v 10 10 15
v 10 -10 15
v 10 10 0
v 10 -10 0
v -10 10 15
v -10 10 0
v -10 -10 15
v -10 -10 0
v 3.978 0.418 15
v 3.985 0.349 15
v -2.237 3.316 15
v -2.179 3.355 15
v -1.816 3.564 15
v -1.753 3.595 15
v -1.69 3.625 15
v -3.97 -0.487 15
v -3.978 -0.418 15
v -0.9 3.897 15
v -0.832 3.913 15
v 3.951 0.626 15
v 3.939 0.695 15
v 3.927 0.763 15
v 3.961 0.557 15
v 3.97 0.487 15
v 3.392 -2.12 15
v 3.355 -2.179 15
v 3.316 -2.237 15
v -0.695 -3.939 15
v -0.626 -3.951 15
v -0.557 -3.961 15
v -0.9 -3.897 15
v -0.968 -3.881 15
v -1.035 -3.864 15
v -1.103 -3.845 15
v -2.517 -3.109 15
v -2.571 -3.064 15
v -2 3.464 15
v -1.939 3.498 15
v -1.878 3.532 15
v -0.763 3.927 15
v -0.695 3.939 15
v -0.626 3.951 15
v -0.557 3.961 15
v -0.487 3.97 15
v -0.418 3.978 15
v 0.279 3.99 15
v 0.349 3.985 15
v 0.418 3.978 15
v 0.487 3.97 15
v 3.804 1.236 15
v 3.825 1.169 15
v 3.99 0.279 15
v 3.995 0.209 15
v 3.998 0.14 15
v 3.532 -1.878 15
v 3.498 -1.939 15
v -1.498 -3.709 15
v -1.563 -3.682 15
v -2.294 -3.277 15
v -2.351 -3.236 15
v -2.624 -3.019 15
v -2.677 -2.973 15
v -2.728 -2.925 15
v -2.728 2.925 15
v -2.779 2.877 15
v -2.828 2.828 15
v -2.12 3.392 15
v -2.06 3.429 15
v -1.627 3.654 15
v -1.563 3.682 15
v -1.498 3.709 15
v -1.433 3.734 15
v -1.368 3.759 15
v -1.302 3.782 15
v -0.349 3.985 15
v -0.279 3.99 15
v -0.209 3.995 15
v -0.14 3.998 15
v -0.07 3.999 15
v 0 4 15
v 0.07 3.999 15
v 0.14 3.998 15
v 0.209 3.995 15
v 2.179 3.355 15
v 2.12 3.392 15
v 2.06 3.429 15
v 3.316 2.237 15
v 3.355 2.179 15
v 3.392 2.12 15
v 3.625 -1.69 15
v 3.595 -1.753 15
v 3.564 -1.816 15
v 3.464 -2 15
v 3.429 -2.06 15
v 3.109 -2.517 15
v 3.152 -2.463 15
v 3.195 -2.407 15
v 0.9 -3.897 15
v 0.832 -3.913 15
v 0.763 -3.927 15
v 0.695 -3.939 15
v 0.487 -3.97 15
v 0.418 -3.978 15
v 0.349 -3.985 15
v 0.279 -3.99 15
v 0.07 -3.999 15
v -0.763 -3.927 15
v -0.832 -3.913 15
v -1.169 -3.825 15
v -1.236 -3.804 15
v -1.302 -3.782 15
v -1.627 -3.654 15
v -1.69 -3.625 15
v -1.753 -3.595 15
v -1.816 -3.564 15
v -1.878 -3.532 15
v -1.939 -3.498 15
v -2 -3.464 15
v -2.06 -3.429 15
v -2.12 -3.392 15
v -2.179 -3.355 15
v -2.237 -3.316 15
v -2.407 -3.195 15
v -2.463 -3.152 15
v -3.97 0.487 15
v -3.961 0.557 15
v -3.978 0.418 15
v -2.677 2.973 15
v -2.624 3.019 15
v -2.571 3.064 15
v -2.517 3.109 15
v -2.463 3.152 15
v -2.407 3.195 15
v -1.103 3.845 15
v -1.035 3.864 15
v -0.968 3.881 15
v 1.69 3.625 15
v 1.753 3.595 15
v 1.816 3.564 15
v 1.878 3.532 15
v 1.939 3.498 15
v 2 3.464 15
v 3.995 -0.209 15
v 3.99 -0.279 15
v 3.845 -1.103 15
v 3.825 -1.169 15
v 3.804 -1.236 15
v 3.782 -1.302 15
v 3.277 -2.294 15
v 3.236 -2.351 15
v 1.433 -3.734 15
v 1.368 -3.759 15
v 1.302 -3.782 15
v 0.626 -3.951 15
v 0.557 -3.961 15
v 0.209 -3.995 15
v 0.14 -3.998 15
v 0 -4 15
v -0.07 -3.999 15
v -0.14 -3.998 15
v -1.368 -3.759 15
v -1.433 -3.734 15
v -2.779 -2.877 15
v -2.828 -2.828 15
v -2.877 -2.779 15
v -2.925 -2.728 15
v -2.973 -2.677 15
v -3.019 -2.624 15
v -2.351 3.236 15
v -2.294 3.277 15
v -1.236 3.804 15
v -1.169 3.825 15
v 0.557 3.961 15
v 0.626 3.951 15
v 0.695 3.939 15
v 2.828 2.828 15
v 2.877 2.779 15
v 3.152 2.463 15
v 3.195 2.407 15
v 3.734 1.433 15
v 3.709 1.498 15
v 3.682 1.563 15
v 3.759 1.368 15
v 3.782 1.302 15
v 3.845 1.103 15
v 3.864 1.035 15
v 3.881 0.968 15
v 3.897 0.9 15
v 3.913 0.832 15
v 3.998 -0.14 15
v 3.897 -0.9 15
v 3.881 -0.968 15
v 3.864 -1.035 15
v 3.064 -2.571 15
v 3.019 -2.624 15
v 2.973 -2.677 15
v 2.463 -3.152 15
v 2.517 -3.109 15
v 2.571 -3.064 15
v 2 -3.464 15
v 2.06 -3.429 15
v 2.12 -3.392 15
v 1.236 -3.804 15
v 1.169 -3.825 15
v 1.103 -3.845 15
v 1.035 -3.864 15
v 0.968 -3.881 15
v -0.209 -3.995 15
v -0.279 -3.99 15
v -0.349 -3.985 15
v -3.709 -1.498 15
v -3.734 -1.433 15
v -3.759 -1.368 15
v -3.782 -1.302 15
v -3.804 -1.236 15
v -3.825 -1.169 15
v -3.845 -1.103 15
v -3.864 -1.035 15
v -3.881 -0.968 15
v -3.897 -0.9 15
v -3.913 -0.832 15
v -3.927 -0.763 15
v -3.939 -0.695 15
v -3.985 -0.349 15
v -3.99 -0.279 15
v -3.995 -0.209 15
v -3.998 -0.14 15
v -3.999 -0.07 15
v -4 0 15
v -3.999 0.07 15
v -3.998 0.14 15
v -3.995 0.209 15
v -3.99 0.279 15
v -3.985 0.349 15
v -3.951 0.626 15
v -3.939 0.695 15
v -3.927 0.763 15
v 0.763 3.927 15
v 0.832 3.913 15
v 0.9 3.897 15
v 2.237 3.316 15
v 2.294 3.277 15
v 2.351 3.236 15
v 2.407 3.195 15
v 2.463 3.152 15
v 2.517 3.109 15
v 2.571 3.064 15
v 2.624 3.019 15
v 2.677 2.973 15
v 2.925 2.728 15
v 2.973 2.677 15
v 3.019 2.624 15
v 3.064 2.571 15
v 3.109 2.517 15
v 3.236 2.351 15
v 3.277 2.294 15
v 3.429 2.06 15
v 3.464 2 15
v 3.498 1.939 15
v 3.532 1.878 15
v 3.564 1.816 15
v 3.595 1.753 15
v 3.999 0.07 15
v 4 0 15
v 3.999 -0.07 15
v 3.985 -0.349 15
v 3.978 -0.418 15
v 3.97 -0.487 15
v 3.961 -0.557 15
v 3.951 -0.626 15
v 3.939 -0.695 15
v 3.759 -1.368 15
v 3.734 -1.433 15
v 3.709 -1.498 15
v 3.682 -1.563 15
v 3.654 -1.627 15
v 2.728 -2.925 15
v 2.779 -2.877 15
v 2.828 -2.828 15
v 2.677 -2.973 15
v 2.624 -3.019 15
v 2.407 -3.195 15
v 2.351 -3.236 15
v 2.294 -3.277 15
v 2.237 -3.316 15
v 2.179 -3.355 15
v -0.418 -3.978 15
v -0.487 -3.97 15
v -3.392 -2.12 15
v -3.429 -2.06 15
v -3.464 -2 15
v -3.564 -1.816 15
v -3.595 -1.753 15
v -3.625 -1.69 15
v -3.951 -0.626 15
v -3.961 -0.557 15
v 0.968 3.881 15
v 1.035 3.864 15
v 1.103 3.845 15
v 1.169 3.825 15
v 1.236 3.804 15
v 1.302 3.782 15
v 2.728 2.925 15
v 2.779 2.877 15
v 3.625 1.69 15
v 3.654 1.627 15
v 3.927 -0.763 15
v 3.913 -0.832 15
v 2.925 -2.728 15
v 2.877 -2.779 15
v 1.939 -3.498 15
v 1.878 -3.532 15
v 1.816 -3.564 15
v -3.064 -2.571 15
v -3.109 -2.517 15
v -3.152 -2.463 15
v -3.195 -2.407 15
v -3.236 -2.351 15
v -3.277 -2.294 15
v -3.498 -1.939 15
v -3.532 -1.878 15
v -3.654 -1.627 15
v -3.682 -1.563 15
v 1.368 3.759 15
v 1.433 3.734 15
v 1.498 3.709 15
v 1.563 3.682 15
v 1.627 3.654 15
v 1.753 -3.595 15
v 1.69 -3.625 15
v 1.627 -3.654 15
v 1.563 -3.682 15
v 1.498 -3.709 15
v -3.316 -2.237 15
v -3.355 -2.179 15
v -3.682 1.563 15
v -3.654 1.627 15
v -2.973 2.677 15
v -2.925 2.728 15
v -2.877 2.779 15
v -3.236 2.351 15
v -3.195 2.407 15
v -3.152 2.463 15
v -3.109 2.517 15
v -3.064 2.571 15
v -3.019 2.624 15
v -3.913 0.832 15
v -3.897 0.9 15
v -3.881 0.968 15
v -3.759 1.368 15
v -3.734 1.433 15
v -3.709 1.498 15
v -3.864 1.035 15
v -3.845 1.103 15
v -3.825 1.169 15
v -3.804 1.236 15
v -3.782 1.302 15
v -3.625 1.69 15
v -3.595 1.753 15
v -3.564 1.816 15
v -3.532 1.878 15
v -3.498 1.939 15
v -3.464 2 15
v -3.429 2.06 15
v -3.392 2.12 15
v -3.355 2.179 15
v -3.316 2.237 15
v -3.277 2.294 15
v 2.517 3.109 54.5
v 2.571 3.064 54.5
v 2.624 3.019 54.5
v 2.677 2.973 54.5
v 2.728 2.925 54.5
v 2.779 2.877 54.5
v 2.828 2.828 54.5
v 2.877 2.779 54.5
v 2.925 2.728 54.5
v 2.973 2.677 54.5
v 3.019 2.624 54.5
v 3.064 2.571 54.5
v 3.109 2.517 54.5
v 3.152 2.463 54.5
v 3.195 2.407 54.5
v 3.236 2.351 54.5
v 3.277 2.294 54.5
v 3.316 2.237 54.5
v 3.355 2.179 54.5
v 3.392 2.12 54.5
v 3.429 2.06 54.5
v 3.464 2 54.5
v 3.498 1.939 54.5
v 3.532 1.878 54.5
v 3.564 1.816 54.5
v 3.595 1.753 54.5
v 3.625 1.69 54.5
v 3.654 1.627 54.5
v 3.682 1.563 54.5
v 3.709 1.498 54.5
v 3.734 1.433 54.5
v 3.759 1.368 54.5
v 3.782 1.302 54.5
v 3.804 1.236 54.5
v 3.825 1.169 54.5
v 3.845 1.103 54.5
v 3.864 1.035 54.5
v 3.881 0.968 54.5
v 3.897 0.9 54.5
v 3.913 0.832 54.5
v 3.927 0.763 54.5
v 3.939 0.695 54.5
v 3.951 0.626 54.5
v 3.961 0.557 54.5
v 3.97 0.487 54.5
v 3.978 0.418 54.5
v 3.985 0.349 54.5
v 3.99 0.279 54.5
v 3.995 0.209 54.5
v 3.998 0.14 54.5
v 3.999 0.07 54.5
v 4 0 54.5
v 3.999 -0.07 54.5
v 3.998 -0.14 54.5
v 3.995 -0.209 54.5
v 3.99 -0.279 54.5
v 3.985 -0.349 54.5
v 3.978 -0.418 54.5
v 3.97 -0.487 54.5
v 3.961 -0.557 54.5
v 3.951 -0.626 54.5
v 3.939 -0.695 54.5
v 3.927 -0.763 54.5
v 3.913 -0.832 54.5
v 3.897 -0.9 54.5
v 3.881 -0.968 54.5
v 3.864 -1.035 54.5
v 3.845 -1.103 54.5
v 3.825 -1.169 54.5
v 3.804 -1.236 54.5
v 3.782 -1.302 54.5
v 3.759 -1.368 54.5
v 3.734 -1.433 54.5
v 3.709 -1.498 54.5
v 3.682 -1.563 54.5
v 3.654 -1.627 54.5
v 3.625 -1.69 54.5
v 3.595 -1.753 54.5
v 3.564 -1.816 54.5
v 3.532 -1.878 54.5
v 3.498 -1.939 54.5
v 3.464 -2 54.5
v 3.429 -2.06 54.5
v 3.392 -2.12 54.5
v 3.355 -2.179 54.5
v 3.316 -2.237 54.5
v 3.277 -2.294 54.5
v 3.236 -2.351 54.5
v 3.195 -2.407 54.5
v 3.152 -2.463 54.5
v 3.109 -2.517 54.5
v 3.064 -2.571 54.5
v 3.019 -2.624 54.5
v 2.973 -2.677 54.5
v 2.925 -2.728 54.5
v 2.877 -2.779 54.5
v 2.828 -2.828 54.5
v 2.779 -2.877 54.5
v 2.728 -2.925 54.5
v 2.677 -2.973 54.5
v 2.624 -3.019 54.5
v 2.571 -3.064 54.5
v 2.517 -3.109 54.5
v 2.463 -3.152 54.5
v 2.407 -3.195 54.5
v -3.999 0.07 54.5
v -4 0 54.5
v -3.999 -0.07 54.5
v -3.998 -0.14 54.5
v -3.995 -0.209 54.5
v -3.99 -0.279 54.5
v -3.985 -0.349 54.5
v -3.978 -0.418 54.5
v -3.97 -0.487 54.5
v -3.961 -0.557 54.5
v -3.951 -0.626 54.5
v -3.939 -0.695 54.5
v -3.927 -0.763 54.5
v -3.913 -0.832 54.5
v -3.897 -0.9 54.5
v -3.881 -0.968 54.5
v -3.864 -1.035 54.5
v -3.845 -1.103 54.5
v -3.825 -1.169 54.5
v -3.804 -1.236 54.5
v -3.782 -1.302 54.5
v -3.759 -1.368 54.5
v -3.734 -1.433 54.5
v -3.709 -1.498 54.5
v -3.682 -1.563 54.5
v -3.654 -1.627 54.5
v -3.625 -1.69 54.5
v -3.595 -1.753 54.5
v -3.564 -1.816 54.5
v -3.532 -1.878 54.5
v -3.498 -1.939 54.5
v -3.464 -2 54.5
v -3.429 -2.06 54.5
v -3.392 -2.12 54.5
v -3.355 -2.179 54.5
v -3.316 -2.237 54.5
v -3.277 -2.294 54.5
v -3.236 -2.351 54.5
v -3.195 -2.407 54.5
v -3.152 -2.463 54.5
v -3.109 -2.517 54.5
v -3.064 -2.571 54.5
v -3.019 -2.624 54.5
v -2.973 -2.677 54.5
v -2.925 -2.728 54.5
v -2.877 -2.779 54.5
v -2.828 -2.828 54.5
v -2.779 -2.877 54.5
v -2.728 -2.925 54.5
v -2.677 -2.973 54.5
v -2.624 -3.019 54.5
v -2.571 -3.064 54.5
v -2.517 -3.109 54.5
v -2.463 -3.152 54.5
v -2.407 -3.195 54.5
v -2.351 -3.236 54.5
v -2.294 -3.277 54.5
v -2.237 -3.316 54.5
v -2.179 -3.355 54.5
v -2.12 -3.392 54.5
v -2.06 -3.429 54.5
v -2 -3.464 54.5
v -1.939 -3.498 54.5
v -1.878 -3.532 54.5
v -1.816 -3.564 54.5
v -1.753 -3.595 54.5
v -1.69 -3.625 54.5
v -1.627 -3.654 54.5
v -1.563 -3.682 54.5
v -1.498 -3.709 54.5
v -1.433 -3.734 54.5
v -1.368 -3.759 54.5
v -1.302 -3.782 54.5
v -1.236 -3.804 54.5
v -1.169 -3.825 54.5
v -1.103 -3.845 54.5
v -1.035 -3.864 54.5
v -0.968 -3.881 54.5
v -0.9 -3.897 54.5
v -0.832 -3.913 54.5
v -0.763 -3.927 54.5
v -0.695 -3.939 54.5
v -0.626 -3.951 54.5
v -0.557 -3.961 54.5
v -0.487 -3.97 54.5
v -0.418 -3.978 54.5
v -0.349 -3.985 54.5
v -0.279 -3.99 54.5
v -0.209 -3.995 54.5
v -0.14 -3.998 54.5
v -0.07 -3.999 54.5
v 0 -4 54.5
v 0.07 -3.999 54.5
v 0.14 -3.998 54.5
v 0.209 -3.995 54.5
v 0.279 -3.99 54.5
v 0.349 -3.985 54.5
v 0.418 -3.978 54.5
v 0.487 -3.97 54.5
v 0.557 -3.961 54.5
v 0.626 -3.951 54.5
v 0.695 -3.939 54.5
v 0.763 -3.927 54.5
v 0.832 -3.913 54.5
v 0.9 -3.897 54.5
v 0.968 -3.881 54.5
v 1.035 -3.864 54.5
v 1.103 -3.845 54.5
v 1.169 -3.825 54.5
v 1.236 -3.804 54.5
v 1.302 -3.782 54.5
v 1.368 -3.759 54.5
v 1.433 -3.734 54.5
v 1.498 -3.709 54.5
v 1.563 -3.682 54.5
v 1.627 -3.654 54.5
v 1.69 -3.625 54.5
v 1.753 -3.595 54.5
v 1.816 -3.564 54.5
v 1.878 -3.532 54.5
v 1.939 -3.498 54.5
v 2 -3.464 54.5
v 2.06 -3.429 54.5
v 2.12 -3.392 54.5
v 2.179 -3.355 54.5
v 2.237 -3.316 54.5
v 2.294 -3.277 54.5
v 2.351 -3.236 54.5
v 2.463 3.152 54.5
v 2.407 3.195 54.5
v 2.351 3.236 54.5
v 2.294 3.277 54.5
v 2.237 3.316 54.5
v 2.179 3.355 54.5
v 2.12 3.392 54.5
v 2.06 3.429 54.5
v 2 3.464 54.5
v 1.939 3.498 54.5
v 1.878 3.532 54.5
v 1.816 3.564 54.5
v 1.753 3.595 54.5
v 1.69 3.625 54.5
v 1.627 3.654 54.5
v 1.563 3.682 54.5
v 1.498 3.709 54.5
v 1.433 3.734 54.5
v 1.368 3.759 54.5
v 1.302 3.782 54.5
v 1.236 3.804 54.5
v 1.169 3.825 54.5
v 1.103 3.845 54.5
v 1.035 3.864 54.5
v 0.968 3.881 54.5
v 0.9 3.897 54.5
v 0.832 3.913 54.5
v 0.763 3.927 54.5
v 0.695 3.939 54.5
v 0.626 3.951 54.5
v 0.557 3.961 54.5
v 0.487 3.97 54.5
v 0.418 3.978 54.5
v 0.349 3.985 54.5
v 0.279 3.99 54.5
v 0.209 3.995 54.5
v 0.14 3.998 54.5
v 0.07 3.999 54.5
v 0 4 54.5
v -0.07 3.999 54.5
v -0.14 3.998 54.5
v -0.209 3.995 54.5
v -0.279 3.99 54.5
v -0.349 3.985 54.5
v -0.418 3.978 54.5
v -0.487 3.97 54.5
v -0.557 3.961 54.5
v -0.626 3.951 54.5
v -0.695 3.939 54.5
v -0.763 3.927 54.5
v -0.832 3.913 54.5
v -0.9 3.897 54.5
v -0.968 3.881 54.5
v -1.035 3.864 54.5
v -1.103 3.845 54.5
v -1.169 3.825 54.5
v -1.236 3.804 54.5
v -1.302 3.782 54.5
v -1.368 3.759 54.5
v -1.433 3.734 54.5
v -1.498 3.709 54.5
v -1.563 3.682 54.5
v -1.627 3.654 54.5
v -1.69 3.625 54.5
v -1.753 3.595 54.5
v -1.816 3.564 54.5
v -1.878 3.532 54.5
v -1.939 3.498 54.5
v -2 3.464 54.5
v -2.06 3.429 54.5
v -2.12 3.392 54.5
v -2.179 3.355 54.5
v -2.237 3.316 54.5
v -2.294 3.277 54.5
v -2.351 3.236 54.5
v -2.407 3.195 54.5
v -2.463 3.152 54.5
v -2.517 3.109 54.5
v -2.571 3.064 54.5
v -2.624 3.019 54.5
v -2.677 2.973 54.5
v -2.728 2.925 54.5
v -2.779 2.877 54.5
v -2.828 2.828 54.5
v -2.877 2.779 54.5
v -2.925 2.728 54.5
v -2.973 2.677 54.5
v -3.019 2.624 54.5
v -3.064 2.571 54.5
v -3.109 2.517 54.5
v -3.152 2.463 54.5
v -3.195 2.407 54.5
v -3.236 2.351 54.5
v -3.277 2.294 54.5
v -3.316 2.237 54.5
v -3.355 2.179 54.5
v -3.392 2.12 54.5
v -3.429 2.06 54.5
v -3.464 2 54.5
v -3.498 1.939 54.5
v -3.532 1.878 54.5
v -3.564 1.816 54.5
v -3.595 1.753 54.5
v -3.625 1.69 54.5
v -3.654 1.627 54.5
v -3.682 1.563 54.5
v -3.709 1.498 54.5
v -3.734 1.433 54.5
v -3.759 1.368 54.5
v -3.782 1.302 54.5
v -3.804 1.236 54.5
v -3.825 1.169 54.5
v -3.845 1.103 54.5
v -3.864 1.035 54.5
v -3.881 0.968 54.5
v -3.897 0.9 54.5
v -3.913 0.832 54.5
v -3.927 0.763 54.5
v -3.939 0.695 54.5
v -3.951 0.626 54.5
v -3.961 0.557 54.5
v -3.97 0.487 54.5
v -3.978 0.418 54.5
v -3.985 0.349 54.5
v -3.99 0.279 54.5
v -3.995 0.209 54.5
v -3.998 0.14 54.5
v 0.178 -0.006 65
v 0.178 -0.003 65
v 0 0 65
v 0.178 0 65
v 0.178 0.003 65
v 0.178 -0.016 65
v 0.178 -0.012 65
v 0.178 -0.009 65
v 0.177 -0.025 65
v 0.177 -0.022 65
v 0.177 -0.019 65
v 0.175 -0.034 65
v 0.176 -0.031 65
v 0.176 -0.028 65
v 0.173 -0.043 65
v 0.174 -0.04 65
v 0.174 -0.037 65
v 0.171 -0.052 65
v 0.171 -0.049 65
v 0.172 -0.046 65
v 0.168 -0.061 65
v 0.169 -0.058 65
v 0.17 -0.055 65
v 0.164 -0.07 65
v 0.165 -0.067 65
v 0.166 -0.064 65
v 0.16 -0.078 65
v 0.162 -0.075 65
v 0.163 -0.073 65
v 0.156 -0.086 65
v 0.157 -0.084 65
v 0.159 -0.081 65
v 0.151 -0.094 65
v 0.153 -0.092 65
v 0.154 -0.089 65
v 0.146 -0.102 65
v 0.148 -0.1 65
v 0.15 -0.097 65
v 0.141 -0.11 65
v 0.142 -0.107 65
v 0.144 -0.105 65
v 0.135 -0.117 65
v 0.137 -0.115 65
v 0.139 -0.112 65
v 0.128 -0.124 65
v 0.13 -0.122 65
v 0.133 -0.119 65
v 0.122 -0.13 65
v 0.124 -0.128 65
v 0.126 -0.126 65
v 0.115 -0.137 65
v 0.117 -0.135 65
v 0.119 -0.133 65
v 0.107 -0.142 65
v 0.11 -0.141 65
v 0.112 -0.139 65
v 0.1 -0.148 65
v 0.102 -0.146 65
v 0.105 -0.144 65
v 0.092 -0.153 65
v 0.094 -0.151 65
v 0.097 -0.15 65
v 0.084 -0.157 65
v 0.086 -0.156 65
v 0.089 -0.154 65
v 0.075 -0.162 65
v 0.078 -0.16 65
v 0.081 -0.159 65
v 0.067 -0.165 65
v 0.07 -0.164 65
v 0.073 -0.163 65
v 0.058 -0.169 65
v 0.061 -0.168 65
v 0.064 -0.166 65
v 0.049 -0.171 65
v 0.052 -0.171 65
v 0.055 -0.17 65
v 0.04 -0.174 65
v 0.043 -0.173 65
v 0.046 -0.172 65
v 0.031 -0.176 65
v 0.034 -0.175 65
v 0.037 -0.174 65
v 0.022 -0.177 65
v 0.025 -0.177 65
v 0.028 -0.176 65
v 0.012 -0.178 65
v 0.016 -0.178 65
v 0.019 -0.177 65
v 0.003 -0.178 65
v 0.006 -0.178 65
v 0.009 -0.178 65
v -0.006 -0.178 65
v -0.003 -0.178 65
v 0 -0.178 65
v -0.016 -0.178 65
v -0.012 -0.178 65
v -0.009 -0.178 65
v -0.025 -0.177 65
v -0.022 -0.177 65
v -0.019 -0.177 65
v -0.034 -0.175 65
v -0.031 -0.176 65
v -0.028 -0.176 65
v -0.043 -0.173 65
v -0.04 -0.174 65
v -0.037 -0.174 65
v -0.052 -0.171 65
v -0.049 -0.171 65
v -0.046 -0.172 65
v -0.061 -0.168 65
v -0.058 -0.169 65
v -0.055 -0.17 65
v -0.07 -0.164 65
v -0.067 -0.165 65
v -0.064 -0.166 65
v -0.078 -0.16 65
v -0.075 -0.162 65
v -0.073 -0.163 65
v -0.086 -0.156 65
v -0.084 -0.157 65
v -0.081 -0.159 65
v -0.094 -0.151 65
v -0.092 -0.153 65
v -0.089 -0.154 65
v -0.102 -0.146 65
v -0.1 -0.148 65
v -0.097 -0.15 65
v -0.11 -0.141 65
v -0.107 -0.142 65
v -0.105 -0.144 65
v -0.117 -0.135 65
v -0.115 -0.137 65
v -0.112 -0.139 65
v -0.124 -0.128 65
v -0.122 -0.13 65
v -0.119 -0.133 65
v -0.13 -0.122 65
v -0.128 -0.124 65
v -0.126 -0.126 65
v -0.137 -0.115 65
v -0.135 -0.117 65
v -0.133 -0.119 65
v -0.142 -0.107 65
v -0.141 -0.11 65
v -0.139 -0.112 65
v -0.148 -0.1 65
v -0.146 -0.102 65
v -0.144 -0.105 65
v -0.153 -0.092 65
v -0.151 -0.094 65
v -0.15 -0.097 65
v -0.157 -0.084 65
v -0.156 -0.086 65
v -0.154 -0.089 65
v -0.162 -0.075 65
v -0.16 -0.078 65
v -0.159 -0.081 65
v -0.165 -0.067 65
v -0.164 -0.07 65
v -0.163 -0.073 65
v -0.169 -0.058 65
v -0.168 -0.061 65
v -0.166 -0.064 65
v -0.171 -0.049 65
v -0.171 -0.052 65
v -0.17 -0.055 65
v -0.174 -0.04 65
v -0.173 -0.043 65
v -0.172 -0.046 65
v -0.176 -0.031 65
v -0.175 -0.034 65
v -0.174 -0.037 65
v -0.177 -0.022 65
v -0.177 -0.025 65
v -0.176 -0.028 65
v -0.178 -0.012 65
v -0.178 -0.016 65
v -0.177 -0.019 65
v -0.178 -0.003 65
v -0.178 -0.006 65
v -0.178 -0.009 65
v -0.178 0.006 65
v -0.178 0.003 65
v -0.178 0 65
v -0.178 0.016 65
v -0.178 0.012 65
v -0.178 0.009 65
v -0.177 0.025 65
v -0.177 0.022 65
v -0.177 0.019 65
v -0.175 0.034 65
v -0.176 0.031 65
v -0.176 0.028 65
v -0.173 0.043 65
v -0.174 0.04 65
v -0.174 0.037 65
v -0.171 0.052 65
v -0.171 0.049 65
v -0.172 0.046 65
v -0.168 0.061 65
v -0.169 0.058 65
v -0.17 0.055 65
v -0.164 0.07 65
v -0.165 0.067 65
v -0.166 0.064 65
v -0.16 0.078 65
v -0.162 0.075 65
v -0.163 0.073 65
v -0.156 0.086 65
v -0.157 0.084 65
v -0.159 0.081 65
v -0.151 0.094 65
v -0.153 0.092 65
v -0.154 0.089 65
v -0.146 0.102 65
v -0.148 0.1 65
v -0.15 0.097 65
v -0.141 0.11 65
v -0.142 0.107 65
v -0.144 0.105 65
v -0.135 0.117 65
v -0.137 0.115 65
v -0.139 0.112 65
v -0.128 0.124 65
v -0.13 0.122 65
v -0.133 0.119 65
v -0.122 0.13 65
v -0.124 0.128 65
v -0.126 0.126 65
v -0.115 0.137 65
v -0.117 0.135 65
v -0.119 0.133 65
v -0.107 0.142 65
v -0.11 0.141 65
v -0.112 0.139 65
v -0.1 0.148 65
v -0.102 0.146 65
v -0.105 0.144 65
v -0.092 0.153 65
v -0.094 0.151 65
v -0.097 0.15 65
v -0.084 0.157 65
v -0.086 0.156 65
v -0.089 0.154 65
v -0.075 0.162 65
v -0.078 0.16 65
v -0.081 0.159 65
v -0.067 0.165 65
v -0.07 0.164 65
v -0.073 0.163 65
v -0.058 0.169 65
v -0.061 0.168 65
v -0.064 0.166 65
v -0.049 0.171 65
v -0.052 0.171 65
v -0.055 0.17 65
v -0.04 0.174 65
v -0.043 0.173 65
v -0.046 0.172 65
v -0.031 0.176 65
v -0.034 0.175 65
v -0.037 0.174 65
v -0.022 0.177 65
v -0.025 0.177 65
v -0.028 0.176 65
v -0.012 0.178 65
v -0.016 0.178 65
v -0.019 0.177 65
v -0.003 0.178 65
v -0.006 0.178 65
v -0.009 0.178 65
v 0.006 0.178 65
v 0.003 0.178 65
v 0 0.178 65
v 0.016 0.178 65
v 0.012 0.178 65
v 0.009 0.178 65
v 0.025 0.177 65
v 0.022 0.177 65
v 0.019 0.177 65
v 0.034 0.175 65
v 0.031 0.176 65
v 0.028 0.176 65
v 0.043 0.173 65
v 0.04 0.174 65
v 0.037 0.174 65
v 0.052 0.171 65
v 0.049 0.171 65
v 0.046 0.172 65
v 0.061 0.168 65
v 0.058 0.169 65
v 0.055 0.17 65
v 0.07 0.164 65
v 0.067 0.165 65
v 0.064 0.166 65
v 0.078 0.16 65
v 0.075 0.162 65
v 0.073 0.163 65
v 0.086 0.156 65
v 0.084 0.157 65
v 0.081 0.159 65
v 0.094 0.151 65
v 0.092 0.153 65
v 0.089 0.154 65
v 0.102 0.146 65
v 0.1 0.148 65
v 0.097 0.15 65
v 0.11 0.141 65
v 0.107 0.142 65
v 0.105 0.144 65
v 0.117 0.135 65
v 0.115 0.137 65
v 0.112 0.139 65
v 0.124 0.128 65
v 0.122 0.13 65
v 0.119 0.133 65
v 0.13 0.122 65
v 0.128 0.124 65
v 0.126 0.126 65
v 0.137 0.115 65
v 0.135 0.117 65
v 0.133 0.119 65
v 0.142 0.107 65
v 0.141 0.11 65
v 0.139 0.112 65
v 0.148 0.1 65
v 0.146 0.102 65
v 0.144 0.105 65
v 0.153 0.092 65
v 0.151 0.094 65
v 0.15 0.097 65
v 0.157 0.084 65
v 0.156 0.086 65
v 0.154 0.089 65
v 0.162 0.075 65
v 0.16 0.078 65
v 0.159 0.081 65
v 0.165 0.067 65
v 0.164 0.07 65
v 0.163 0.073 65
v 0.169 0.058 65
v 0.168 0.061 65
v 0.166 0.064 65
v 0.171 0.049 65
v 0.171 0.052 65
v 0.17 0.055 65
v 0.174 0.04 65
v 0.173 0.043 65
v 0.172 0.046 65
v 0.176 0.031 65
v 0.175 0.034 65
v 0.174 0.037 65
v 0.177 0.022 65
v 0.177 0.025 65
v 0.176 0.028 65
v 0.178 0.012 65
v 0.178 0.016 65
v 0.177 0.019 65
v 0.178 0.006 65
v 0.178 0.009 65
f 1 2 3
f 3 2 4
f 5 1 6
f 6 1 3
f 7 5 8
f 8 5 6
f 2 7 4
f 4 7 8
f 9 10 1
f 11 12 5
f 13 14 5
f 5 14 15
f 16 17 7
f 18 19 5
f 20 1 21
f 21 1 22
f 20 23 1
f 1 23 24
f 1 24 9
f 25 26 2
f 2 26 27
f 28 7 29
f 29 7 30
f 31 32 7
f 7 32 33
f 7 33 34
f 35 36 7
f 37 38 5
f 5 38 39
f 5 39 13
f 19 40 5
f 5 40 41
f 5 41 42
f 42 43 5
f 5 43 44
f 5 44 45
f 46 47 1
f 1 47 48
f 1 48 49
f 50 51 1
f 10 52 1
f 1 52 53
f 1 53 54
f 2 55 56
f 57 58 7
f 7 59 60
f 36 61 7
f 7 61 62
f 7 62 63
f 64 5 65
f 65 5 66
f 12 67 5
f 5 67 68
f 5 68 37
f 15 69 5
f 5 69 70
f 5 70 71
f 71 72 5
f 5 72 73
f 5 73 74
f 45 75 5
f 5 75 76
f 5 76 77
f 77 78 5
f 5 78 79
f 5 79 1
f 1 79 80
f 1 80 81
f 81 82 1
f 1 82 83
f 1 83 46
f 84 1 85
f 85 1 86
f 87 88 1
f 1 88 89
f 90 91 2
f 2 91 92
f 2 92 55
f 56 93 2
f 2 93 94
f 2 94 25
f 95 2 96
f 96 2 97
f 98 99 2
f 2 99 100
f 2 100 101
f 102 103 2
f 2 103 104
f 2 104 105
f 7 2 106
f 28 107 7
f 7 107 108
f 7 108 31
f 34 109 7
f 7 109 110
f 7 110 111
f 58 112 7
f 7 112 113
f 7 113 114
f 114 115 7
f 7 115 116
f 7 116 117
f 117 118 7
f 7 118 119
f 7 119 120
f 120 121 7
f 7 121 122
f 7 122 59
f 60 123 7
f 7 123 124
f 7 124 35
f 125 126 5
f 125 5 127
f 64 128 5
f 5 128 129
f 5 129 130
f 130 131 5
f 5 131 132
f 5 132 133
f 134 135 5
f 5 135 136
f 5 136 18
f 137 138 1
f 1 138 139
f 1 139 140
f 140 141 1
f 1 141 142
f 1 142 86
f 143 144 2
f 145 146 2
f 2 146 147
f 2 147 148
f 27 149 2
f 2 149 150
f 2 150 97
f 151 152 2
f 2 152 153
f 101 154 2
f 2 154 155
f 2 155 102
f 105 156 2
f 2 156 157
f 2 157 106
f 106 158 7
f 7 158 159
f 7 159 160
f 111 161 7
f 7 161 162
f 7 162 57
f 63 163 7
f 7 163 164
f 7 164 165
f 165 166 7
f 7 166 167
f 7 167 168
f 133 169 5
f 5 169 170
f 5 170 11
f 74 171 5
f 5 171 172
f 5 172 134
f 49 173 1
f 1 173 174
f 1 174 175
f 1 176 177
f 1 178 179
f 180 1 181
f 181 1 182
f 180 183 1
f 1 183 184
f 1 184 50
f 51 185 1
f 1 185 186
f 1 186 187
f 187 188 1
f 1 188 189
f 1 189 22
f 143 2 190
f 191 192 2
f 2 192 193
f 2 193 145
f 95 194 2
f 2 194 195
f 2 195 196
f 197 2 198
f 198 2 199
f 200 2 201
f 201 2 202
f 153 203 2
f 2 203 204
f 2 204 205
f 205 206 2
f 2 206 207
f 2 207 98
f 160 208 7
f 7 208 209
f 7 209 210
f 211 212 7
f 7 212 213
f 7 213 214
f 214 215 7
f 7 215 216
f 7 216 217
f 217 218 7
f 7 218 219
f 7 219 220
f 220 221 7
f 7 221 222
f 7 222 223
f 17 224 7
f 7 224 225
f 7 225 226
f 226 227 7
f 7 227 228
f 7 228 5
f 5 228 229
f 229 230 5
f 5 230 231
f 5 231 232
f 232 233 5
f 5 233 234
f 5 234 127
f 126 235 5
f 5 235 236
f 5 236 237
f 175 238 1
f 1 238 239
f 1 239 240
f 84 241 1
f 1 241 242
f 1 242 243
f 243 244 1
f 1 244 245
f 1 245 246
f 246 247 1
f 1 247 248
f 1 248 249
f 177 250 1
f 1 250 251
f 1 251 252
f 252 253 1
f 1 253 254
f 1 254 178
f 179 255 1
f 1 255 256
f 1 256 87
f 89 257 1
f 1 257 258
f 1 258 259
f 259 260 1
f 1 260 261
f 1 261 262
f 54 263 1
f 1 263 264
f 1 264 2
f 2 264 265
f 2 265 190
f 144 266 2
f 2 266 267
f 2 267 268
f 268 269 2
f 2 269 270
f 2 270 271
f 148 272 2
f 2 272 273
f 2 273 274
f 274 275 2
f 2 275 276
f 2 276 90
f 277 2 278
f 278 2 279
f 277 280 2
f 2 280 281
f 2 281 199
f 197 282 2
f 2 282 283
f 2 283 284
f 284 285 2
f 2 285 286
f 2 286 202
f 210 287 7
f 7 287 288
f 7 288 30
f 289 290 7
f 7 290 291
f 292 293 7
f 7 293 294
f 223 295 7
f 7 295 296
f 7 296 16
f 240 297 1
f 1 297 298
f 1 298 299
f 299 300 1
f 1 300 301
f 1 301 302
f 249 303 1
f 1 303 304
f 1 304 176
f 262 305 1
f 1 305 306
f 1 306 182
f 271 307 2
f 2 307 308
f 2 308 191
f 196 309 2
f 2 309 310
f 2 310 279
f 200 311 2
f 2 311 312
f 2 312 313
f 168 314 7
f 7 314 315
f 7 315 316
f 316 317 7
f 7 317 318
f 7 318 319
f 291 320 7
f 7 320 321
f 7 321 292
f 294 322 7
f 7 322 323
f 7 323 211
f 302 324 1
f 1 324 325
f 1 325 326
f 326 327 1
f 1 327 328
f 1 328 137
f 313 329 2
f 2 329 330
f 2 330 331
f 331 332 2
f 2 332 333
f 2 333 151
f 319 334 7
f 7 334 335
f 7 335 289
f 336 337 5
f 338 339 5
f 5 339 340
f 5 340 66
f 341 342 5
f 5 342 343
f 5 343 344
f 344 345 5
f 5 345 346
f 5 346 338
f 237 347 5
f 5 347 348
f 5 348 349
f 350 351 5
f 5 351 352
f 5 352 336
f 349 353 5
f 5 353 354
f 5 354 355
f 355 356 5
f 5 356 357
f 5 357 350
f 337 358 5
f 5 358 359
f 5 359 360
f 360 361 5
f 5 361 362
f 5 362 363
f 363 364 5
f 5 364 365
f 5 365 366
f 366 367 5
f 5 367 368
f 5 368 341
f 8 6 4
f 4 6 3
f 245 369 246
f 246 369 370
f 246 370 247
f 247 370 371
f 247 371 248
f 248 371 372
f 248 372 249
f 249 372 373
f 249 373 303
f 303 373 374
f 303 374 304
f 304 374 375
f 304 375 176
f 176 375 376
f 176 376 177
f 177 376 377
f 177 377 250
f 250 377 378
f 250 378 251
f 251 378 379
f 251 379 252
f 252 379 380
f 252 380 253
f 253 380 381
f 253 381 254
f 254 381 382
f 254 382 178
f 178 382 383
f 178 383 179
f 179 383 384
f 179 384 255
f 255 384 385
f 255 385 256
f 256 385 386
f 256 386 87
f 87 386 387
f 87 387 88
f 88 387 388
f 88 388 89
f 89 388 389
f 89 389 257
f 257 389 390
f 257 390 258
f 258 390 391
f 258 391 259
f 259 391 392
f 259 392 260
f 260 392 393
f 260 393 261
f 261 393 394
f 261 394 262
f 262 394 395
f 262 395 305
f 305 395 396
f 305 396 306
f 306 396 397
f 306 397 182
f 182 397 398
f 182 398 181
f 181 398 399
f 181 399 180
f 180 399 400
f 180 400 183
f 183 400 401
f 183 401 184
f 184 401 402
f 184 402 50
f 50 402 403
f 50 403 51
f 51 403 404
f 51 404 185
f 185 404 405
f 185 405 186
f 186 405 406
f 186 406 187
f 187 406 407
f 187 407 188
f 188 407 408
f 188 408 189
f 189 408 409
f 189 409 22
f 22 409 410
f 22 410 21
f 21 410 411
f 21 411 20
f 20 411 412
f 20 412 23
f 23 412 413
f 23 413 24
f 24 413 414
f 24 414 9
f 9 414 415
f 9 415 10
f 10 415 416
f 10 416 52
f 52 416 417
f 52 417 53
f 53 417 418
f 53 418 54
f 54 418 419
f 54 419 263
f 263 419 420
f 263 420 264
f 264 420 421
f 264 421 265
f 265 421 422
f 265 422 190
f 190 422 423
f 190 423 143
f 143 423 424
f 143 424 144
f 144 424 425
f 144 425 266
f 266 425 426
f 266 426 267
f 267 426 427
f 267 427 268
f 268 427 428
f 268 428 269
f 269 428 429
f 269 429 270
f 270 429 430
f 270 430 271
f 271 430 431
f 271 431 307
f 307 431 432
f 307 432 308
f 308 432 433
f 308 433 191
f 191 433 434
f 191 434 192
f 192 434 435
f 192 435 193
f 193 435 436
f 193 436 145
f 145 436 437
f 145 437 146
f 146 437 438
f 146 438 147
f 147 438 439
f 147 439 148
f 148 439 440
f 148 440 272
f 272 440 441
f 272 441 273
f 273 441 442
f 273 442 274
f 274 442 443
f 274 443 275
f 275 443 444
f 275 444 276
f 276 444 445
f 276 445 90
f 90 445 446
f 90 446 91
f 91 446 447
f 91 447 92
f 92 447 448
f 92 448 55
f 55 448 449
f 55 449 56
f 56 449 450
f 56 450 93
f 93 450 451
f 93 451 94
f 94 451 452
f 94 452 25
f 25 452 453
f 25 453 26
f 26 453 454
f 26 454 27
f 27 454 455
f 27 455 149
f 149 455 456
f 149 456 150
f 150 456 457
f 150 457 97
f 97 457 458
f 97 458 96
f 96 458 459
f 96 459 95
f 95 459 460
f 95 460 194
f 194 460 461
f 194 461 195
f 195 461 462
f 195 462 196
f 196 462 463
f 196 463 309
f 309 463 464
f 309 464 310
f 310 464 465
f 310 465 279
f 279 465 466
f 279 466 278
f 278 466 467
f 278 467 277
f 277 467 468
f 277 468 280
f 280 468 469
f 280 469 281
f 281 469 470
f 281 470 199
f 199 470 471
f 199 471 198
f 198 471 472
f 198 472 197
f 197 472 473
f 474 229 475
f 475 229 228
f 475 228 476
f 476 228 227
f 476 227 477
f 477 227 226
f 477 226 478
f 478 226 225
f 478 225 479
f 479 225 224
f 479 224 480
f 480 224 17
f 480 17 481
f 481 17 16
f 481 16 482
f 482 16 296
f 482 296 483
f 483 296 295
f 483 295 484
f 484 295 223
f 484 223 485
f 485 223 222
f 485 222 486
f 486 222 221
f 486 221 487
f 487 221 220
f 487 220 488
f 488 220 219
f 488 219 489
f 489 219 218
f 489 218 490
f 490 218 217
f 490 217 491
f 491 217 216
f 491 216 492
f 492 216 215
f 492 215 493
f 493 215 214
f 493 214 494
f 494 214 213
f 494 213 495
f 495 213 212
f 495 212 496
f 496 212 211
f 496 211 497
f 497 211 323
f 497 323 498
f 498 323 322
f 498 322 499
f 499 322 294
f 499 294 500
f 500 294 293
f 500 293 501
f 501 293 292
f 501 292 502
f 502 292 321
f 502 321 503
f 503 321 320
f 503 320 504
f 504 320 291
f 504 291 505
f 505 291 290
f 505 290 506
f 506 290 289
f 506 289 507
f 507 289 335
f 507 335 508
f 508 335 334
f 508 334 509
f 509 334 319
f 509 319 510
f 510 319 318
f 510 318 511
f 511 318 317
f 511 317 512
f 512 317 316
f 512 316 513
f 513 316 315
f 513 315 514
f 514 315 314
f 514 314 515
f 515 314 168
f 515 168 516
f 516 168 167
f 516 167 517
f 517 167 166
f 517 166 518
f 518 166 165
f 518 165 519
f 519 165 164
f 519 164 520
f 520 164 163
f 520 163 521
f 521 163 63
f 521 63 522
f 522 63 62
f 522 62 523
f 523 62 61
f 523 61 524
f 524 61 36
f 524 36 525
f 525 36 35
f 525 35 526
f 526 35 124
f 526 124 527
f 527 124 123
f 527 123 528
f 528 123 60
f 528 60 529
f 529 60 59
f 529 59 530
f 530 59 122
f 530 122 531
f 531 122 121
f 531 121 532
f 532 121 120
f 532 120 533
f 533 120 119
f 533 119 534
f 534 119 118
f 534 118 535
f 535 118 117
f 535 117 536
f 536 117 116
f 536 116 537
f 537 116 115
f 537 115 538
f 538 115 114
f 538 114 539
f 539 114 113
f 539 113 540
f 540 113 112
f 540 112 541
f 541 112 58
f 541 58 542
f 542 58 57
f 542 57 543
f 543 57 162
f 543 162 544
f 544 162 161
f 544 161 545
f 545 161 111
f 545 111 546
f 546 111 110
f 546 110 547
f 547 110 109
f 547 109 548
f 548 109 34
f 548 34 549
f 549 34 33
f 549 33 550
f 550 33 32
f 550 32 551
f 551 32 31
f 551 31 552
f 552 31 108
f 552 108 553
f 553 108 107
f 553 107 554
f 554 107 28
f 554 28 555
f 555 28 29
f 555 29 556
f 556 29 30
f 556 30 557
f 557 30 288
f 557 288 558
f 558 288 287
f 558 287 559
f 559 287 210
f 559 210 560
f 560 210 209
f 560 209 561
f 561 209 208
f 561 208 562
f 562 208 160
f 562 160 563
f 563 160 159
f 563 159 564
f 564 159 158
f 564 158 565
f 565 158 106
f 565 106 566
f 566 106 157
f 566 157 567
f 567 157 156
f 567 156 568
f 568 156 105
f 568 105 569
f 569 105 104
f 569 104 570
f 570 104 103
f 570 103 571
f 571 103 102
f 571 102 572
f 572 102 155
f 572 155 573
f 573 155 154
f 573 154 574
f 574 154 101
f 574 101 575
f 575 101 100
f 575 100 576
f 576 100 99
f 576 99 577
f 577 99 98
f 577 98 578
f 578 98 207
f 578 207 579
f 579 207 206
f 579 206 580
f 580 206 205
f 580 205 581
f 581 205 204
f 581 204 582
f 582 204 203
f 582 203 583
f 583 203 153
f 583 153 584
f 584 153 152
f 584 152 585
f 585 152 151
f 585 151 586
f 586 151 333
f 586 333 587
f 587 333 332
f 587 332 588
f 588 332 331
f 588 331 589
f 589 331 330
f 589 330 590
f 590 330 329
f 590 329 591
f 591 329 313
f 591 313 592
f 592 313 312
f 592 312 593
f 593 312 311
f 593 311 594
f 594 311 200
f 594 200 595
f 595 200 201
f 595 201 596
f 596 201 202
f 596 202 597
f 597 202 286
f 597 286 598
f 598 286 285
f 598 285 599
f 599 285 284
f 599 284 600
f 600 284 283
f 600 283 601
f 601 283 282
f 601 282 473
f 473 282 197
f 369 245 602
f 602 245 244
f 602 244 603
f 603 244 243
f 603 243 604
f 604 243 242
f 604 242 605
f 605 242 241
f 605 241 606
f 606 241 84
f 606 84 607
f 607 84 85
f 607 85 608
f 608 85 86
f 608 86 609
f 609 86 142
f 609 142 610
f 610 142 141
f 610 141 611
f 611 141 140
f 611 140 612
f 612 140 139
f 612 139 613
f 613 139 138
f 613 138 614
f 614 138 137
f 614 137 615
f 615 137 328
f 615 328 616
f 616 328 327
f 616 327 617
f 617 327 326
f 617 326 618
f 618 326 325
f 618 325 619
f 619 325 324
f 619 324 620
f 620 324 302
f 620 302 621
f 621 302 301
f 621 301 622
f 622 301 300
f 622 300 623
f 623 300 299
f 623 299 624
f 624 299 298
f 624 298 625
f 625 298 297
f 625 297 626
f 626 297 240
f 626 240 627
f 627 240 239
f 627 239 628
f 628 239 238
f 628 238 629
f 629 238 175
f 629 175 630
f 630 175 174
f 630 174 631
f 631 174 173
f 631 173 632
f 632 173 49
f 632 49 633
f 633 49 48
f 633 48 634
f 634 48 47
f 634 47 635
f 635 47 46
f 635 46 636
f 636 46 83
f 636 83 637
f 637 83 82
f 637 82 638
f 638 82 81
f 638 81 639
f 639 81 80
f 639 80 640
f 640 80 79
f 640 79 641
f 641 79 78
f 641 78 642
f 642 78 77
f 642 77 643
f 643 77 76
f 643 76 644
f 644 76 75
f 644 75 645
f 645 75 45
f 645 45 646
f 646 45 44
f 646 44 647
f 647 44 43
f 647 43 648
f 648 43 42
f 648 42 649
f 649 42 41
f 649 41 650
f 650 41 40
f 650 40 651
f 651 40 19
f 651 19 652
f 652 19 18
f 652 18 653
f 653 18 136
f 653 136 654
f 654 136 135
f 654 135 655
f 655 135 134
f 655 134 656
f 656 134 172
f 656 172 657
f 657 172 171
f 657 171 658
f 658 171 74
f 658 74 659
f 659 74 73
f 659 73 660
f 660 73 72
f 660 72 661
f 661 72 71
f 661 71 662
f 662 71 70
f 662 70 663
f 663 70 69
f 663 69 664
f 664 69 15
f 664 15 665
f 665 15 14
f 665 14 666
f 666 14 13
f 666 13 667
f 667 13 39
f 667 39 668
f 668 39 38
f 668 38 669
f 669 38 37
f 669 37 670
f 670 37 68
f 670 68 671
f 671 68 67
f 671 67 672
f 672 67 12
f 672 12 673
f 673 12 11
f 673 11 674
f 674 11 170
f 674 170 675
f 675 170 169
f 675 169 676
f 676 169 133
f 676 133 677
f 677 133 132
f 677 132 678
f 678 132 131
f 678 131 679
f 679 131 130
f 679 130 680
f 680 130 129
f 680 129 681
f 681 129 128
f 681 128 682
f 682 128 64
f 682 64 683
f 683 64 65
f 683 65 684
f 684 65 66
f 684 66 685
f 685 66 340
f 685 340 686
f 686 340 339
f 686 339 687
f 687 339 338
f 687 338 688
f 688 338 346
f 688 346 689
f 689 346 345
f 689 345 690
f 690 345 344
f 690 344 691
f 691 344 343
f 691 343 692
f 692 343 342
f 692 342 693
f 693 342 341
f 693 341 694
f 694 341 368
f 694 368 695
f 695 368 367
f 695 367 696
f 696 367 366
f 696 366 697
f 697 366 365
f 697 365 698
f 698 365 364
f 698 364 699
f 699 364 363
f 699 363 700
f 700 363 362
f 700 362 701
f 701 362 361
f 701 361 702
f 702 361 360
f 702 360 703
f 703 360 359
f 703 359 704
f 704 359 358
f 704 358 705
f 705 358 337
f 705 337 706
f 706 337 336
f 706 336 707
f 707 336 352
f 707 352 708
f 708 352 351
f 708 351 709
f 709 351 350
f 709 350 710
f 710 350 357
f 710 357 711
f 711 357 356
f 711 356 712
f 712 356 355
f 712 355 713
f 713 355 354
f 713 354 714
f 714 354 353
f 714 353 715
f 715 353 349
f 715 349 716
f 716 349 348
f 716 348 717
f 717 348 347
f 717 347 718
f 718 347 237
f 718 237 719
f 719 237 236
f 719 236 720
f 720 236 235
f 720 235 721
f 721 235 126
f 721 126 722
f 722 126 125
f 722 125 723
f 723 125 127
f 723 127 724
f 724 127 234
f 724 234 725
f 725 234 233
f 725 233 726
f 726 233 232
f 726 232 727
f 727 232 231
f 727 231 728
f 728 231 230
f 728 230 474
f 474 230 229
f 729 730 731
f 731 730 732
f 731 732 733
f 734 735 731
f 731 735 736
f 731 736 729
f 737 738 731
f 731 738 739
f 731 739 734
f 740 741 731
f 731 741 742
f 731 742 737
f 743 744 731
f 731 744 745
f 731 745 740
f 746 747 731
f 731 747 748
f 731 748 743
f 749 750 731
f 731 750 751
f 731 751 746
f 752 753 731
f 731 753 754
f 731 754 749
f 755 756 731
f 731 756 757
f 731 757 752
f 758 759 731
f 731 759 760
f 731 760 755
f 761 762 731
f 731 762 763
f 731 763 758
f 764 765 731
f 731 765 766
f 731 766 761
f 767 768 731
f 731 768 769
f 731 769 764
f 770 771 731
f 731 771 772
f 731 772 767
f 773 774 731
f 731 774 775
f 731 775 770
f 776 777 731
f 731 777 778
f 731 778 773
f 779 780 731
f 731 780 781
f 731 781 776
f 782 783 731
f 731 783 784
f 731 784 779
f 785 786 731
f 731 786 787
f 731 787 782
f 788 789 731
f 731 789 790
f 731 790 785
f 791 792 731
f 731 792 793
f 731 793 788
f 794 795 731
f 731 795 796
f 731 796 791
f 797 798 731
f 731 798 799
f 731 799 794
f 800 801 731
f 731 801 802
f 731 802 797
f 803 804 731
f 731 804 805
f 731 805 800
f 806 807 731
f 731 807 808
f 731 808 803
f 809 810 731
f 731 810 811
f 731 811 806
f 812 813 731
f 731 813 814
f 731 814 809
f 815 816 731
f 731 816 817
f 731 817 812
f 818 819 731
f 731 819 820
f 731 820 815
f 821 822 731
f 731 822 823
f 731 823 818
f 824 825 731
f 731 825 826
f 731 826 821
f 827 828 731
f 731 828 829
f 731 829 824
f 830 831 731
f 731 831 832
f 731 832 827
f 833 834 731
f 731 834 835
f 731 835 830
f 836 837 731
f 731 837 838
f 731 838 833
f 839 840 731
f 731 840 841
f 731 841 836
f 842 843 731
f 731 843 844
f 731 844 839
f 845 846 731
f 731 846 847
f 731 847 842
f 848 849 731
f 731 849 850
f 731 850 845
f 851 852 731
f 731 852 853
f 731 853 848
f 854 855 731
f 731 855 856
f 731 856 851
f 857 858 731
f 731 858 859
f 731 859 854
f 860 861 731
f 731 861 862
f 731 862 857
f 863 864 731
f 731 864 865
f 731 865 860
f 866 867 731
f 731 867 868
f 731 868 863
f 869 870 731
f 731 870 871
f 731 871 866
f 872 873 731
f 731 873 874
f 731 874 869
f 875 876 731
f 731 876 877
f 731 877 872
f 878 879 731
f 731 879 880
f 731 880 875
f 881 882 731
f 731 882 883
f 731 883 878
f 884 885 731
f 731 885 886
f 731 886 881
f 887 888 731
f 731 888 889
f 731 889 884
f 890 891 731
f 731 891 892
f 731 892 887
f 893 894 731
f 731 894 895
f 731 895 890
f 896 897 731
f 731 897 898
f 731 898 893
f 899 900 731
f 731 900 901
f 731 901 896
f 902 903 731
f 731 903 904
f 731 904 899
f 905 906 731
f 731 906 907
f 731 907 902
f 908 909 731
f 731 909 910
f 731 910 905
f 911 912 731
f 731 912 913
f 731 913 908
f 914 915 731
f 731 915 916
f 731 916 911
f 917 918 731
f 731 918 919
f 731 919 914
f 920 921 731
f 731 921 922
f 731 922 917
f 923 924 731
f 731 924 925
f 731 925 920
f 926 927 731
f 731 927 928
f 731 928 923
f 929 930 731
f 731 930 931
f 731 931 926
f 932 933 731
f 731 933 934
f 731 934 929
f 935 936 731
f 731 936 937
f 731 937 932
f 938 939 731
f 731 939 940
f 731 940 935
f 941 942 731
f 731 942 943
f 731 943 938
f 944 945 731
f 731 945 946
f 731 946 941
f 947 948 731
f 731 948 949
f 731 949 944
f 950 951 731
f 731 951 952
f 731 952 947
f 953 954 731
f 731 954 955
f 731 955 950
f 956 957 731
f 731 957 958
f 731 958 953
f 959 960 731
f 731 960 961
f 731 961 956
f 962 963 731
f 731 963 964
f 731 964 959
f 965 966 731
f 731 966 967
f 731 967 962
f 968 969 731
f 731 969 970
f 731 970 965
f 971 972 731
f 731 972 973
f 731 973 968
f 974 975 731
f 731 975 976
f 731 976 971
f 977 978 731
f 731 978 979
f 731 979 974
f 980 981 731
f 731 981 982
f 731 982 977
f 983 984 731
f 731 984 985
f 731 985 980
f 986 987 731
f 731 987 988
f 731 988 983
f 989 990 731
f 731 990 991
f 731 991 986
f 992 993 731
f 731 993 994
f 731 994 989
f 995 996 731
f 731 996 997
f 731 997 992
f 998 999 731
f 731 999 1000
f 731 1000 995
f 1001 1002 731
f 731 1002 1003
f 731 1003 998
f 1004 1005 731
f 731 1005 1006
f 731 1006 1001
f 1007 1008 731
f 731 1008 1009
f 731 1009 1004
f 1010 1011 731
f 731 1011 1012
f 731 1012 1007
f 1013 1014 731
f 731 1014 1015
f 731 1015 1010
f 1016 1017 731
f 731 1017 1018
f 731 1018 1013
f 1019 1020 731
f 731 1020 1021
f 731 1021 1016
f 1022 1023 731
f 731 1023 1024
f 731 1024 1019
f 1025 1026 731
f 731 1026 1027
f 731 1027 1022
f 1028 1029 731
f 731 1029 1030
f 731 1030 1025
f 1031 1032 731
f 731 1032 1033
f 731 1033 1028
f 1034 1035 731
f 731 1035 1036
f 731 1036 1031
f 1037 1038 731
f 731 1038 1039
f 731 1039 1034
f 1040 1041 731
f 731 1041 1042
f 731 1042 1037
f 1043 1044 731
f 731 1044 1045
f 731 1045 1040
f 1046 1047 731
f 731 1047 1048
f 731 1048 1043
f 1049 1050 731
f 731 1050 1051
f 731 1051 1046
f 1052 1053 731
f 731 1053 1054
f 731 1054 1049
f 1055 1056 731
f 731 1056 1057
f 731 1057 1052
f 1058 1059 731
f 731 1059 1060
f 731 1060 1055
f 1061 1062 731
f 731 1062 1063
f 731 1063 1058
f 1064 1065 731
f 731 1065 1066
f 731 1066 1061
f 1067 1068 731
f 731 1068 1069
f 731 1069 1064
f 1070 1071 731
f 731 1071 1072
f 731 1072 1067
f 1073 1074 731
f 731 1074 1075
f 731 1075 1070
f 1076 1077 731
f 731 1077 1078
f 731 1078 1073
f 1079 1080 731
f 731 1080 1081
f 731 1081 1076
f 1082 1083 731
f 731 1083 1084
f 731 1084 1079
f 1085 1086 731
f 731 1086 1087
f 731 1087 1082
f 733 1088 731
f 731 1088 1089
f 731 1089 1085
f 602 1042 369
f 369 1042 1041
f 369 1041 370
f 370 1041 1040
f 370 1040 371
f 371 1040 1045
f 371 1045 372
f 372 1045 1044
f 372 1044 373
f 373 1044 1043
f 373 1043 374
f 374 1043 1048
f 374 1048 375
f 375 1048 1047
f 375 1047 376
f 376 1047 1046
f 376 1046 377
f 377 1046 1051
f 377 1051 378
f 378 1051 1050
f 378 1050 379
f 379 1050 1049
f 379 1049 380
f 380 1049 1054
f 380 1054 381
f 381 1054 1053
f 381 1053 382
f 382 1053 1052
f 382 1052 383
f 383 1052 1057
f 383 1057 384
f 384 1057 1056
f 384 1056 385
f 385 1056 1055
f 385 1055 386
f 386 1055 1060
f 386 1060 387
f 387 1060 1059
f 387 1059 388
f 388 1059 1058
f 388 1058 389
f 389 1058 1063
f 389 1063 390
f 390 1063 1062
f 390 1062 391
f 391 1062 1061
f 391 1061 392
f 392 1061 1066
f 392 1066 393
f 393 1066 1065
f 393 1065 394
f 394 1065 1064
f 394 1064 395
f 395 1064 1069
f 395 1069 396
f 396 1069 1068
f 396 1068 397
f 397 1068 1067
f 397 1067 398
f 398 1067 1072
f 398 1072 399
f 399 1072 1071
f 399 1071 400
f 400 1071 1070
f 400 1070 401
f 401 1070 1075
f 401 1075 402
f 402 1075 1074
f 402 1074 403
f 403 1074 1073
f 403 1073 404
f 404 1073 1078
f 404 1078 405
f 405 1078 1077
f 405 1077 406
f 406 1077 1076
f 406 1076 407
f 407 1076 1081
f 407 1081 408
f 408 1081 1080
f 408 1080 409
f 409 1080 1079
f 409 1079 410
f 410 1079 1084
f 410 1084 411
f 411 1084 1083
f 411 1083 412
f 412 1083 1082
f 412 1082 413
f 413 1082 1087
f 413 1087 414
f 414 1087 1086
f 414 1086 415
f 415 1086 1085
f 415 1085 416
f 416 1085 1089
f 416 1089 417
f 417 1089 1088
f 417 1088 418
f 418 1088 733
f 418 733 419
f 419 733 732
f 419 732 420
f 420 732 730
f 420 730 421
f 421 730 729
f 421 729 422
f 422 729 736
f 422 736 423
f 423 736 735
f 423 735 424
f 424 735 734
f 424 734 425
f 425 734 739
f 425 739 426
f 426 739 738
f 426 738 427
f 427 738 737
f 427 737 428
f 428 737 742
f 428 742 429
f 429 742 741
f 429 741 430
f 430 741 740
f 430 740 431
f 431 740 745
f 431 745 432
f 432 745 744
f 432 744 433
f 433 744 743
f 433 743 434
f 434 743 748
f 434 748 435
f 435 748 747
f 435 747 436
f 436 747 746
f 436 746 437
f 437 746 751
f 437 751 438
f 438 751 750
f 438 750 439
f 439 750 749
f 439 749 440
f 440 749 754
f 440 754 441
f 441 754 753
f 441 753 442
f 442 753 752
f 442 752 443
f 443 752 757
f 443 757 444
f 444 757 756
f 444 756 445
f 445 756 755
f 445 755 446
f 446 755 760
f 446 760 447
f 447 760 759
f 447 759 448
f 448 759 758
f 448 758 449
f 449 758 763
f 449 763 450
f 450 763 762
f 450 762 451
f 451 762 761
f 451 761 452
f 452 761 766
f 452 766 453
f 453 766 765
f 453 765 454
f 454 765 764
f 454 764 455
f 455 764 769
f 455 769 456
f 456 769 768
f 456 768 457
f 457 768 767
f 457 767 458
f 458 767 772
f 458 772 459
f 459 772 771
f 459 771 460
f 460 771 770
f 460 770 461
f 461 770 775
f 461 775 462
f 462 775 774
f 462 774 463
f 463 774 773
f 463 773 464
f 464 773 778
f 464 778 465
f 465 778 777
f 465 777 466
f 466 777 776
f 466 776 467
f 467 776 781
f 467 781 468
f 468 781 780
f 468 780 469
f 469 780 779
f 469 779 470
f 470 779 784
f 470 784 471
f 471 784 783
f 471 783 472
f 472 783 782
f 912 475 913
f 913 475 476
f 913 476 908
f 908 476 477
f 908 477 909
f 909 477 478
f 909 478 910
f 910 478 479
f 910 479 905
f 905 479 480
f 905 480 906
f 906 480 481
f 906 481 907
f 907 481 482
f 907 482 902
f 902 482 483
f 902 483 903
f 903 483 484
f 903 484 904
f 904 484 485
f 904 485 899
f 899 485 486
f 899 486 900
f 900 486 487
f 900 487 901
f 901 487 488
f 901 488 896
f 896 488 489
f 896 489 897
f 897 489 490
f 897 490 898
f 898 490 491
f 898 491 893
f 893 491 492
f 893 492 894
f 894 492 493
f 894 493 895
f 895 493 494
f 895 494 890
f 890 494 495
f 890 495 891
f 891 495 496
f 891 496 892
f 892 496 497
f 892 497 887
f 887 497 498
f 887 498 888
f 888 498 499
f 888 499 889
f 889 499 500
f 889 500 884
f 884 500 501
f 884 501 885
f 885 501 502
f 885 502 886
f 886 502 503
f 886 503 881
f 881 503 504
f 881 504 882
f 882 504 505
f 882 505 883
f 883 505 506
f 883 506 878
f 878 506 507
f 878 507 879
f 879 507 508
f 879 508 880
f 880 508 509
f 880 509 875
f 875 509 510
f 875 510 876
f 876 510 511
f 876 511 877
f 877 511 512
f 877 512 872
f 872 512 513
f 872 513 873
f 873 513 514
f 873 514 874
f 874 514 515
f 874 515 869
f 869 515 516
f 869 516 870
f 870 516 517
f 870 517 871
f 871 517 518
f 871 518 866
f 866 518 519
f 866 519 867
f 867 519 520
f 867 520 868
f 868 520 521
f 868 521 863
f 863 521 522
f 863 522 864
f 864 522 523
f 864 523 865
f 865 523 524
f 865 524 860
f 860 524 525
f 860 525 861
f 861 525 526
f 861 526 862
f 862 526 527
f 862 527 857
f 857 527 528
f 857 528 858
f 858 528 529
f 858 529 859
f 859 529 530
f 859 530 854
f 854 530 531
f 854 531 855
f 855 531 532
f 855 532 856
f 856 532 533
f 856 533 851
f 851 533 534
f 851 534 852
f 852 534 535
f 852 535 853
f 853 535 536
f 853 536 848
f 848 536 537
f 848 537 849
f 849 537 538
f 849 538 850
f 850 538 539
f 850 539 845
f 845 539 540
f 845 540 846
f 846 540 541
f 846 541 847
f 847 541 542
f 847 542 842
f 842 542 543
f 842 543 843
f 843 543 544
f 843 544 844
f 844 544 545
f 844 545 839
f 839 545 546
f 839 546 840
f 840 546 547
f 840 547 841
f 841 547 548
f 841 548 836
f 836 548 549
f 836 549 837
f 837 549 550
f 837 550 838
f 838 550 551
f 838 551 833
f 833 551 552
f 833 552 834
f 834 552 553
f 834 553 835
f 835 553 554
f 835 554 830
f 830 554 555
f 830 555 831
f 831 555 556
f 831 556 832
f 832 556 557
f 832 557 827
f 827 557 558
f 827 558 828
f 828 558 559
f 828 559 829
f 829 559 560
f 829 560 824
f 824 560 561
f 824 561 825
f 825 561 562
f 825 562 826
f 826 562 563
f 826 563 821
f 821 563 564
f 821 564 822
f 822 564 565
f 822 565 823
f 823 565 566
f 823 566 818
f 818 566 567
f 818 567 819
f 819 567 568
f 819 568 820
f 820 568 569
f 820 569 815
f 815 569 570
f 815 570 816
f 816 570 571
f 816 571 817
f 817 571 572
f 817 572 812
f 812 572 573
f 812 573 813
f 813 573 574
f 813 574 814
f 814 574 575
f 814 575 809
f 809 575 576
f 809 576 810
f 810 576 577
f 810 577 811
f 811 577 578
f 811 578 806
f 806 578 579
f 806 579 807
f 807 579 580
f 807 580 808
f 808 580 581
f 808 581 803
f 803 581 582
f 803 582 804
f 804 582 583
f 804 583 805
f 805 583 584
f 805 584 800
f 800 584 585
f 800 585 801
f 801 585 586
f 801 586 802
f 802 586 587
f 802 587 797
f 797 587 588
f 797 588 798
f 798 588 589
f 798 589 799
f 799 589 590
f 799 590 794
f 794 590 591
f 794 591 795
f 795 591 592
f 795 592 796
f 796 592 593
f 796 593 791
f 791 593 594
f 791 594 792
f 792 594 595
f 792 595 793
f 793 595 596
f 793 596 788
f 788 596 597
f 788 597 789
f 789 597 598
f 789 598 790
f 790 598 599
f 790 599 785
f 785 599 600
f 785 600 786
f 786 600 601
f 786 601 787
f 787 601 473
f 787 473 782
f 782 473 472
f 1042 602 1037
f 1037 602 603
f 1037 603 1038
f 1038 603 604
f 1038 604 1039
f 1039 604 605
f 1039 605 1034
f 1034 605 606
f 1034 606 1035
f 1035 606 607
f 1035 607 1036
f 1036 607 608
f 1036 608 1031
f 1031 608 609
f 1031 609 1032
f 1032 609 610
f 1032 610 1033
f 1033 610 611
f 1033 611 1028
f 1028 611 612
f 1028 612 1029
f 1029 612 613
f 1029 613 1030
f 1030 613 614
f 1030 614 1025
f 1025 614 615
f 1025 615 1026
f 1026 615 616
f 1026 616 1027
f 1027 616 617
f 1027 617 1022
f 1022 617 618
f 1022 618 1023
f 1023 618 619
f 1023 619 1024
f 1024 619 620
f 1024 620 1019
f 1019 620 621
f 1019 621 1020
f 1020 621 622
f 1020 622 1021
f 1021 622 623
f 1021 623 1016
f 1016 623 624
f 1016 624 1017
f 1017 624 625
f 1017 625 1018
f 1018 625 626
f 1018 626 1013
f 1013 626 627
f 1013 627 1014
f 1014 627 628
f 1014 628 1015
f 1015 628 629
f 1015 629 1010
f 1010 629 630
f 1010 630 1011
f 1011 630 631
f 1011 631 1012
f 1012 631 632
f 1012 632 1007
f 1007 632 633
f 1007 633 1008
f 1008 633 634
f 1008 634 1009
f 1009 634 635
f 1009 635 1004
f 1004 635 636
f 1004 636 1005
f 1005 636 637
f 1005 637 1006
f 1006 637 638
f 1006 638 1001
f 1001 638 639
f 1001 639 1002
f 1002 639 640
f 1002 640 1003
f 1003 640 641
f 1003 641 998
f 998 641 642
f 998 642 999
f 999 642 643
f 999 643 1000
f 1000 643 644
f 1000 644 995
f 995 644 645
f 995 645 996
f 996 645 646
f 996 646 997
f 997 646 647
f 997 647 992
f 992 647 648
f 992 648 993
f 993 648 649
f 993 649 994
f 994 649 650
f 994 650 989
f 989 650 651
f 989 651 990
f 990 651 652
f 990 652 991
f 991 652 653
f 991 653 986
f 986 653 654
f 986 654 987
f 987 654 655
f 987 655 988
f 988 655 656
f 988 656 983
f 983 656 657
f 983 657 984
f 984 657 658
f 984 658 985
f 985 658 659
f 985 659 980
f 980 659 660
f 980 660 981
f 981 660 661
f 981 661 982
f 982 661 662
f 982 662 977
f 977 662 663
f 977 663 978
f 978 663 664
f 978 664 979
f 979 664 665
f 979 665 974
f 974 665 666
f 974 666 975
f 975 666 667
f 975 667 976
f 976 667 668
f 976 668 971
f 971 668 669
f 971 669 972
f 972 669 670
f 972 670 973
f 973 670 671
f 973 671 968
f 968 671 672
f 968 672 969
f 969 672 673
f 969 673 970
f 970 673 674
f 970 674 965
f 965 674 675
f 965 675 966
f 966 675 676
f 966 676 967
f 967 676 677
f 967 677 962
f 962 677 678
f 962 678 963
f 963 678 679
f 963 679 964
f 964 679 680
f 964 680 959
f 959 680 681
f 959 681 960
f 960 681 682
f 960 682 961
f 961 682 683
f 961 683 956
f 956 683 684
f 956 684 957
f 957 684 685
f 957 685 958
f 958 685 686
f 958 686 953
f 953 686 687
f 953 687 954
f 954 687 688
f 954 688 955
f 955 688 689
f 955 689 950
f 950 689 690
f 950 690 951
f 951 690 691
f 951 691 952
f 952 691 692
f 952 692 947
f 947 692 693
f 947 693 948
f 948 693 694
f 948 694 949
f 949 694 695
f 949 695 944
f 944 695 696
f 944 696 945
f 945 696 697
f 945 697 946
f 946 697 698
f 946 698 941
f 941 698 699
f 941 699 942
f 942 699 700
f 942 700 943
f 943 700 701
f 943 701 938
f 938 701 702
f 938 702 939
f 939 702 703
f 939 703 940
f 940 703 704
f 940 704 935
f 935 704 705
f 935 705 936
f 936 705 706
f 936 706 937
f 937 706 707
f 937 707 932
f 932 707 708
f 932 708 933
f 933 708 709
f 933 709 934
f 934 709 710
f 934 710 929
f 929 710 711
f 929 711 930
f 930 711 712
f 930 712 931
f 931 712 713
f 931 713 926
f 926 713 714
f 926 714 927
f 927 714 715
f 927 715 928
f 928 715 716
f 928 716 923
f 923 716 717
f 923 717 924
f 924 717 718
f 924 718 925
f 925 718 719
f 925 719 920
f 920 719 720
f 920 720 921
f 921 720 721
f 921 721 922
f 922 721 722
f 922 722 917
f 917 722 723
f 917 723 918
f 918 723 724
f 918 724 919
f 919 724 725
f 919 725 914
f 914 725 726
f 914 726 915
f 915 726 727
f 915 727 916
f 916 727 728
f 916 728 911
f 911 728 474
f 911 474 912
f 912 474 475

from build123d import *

# Parameters (mm, degrees)
SKETCH1_W           = 20
SKETCH1_H           = 20
BOSS_EXTRUDE1_DEPTH = 15
SKETCH2_R           = 4
BOSS_EXTRUDE2_DEPTH = 50
CHAMFER1_SIZE       = 10.5
CHAMFER1_SIZE2      = 3.82168746


with BuildPart() as part:
    # Sketch1 → Boss-Extrude1 (new body)
    with BuildSketch(Plane.XY):
        Rectangle(SKETCH1_W, SKETCH1_H)
    extrude(amount=BOSS_EXTRUDE1_DEPTH)

    # Sketch2 → Boss-Extrude2 (add)
    with BuildSketch(Plane.XY.offset(15)):
        Circle(SKETCH2_R)
    extrude(amount=BOSS_EXTRUDE2_DEPTH)

    # Chamfer1
    chamfer1_edges = [part.edges().sort_by_distance(p)[0] for p in [
        (-4, 0, 65),
    ]]
    chamfer1_side = [part.faces().sort_by_distance(p)[0] for p in [
        (-4, 0, 40),
    ]]
    chamfer(chamfer1_edges, length=CHAMFER1_SIZE, length2=CHAMFER1_SIZE2, reference=chamfer1_side[0])


solid = part.part
